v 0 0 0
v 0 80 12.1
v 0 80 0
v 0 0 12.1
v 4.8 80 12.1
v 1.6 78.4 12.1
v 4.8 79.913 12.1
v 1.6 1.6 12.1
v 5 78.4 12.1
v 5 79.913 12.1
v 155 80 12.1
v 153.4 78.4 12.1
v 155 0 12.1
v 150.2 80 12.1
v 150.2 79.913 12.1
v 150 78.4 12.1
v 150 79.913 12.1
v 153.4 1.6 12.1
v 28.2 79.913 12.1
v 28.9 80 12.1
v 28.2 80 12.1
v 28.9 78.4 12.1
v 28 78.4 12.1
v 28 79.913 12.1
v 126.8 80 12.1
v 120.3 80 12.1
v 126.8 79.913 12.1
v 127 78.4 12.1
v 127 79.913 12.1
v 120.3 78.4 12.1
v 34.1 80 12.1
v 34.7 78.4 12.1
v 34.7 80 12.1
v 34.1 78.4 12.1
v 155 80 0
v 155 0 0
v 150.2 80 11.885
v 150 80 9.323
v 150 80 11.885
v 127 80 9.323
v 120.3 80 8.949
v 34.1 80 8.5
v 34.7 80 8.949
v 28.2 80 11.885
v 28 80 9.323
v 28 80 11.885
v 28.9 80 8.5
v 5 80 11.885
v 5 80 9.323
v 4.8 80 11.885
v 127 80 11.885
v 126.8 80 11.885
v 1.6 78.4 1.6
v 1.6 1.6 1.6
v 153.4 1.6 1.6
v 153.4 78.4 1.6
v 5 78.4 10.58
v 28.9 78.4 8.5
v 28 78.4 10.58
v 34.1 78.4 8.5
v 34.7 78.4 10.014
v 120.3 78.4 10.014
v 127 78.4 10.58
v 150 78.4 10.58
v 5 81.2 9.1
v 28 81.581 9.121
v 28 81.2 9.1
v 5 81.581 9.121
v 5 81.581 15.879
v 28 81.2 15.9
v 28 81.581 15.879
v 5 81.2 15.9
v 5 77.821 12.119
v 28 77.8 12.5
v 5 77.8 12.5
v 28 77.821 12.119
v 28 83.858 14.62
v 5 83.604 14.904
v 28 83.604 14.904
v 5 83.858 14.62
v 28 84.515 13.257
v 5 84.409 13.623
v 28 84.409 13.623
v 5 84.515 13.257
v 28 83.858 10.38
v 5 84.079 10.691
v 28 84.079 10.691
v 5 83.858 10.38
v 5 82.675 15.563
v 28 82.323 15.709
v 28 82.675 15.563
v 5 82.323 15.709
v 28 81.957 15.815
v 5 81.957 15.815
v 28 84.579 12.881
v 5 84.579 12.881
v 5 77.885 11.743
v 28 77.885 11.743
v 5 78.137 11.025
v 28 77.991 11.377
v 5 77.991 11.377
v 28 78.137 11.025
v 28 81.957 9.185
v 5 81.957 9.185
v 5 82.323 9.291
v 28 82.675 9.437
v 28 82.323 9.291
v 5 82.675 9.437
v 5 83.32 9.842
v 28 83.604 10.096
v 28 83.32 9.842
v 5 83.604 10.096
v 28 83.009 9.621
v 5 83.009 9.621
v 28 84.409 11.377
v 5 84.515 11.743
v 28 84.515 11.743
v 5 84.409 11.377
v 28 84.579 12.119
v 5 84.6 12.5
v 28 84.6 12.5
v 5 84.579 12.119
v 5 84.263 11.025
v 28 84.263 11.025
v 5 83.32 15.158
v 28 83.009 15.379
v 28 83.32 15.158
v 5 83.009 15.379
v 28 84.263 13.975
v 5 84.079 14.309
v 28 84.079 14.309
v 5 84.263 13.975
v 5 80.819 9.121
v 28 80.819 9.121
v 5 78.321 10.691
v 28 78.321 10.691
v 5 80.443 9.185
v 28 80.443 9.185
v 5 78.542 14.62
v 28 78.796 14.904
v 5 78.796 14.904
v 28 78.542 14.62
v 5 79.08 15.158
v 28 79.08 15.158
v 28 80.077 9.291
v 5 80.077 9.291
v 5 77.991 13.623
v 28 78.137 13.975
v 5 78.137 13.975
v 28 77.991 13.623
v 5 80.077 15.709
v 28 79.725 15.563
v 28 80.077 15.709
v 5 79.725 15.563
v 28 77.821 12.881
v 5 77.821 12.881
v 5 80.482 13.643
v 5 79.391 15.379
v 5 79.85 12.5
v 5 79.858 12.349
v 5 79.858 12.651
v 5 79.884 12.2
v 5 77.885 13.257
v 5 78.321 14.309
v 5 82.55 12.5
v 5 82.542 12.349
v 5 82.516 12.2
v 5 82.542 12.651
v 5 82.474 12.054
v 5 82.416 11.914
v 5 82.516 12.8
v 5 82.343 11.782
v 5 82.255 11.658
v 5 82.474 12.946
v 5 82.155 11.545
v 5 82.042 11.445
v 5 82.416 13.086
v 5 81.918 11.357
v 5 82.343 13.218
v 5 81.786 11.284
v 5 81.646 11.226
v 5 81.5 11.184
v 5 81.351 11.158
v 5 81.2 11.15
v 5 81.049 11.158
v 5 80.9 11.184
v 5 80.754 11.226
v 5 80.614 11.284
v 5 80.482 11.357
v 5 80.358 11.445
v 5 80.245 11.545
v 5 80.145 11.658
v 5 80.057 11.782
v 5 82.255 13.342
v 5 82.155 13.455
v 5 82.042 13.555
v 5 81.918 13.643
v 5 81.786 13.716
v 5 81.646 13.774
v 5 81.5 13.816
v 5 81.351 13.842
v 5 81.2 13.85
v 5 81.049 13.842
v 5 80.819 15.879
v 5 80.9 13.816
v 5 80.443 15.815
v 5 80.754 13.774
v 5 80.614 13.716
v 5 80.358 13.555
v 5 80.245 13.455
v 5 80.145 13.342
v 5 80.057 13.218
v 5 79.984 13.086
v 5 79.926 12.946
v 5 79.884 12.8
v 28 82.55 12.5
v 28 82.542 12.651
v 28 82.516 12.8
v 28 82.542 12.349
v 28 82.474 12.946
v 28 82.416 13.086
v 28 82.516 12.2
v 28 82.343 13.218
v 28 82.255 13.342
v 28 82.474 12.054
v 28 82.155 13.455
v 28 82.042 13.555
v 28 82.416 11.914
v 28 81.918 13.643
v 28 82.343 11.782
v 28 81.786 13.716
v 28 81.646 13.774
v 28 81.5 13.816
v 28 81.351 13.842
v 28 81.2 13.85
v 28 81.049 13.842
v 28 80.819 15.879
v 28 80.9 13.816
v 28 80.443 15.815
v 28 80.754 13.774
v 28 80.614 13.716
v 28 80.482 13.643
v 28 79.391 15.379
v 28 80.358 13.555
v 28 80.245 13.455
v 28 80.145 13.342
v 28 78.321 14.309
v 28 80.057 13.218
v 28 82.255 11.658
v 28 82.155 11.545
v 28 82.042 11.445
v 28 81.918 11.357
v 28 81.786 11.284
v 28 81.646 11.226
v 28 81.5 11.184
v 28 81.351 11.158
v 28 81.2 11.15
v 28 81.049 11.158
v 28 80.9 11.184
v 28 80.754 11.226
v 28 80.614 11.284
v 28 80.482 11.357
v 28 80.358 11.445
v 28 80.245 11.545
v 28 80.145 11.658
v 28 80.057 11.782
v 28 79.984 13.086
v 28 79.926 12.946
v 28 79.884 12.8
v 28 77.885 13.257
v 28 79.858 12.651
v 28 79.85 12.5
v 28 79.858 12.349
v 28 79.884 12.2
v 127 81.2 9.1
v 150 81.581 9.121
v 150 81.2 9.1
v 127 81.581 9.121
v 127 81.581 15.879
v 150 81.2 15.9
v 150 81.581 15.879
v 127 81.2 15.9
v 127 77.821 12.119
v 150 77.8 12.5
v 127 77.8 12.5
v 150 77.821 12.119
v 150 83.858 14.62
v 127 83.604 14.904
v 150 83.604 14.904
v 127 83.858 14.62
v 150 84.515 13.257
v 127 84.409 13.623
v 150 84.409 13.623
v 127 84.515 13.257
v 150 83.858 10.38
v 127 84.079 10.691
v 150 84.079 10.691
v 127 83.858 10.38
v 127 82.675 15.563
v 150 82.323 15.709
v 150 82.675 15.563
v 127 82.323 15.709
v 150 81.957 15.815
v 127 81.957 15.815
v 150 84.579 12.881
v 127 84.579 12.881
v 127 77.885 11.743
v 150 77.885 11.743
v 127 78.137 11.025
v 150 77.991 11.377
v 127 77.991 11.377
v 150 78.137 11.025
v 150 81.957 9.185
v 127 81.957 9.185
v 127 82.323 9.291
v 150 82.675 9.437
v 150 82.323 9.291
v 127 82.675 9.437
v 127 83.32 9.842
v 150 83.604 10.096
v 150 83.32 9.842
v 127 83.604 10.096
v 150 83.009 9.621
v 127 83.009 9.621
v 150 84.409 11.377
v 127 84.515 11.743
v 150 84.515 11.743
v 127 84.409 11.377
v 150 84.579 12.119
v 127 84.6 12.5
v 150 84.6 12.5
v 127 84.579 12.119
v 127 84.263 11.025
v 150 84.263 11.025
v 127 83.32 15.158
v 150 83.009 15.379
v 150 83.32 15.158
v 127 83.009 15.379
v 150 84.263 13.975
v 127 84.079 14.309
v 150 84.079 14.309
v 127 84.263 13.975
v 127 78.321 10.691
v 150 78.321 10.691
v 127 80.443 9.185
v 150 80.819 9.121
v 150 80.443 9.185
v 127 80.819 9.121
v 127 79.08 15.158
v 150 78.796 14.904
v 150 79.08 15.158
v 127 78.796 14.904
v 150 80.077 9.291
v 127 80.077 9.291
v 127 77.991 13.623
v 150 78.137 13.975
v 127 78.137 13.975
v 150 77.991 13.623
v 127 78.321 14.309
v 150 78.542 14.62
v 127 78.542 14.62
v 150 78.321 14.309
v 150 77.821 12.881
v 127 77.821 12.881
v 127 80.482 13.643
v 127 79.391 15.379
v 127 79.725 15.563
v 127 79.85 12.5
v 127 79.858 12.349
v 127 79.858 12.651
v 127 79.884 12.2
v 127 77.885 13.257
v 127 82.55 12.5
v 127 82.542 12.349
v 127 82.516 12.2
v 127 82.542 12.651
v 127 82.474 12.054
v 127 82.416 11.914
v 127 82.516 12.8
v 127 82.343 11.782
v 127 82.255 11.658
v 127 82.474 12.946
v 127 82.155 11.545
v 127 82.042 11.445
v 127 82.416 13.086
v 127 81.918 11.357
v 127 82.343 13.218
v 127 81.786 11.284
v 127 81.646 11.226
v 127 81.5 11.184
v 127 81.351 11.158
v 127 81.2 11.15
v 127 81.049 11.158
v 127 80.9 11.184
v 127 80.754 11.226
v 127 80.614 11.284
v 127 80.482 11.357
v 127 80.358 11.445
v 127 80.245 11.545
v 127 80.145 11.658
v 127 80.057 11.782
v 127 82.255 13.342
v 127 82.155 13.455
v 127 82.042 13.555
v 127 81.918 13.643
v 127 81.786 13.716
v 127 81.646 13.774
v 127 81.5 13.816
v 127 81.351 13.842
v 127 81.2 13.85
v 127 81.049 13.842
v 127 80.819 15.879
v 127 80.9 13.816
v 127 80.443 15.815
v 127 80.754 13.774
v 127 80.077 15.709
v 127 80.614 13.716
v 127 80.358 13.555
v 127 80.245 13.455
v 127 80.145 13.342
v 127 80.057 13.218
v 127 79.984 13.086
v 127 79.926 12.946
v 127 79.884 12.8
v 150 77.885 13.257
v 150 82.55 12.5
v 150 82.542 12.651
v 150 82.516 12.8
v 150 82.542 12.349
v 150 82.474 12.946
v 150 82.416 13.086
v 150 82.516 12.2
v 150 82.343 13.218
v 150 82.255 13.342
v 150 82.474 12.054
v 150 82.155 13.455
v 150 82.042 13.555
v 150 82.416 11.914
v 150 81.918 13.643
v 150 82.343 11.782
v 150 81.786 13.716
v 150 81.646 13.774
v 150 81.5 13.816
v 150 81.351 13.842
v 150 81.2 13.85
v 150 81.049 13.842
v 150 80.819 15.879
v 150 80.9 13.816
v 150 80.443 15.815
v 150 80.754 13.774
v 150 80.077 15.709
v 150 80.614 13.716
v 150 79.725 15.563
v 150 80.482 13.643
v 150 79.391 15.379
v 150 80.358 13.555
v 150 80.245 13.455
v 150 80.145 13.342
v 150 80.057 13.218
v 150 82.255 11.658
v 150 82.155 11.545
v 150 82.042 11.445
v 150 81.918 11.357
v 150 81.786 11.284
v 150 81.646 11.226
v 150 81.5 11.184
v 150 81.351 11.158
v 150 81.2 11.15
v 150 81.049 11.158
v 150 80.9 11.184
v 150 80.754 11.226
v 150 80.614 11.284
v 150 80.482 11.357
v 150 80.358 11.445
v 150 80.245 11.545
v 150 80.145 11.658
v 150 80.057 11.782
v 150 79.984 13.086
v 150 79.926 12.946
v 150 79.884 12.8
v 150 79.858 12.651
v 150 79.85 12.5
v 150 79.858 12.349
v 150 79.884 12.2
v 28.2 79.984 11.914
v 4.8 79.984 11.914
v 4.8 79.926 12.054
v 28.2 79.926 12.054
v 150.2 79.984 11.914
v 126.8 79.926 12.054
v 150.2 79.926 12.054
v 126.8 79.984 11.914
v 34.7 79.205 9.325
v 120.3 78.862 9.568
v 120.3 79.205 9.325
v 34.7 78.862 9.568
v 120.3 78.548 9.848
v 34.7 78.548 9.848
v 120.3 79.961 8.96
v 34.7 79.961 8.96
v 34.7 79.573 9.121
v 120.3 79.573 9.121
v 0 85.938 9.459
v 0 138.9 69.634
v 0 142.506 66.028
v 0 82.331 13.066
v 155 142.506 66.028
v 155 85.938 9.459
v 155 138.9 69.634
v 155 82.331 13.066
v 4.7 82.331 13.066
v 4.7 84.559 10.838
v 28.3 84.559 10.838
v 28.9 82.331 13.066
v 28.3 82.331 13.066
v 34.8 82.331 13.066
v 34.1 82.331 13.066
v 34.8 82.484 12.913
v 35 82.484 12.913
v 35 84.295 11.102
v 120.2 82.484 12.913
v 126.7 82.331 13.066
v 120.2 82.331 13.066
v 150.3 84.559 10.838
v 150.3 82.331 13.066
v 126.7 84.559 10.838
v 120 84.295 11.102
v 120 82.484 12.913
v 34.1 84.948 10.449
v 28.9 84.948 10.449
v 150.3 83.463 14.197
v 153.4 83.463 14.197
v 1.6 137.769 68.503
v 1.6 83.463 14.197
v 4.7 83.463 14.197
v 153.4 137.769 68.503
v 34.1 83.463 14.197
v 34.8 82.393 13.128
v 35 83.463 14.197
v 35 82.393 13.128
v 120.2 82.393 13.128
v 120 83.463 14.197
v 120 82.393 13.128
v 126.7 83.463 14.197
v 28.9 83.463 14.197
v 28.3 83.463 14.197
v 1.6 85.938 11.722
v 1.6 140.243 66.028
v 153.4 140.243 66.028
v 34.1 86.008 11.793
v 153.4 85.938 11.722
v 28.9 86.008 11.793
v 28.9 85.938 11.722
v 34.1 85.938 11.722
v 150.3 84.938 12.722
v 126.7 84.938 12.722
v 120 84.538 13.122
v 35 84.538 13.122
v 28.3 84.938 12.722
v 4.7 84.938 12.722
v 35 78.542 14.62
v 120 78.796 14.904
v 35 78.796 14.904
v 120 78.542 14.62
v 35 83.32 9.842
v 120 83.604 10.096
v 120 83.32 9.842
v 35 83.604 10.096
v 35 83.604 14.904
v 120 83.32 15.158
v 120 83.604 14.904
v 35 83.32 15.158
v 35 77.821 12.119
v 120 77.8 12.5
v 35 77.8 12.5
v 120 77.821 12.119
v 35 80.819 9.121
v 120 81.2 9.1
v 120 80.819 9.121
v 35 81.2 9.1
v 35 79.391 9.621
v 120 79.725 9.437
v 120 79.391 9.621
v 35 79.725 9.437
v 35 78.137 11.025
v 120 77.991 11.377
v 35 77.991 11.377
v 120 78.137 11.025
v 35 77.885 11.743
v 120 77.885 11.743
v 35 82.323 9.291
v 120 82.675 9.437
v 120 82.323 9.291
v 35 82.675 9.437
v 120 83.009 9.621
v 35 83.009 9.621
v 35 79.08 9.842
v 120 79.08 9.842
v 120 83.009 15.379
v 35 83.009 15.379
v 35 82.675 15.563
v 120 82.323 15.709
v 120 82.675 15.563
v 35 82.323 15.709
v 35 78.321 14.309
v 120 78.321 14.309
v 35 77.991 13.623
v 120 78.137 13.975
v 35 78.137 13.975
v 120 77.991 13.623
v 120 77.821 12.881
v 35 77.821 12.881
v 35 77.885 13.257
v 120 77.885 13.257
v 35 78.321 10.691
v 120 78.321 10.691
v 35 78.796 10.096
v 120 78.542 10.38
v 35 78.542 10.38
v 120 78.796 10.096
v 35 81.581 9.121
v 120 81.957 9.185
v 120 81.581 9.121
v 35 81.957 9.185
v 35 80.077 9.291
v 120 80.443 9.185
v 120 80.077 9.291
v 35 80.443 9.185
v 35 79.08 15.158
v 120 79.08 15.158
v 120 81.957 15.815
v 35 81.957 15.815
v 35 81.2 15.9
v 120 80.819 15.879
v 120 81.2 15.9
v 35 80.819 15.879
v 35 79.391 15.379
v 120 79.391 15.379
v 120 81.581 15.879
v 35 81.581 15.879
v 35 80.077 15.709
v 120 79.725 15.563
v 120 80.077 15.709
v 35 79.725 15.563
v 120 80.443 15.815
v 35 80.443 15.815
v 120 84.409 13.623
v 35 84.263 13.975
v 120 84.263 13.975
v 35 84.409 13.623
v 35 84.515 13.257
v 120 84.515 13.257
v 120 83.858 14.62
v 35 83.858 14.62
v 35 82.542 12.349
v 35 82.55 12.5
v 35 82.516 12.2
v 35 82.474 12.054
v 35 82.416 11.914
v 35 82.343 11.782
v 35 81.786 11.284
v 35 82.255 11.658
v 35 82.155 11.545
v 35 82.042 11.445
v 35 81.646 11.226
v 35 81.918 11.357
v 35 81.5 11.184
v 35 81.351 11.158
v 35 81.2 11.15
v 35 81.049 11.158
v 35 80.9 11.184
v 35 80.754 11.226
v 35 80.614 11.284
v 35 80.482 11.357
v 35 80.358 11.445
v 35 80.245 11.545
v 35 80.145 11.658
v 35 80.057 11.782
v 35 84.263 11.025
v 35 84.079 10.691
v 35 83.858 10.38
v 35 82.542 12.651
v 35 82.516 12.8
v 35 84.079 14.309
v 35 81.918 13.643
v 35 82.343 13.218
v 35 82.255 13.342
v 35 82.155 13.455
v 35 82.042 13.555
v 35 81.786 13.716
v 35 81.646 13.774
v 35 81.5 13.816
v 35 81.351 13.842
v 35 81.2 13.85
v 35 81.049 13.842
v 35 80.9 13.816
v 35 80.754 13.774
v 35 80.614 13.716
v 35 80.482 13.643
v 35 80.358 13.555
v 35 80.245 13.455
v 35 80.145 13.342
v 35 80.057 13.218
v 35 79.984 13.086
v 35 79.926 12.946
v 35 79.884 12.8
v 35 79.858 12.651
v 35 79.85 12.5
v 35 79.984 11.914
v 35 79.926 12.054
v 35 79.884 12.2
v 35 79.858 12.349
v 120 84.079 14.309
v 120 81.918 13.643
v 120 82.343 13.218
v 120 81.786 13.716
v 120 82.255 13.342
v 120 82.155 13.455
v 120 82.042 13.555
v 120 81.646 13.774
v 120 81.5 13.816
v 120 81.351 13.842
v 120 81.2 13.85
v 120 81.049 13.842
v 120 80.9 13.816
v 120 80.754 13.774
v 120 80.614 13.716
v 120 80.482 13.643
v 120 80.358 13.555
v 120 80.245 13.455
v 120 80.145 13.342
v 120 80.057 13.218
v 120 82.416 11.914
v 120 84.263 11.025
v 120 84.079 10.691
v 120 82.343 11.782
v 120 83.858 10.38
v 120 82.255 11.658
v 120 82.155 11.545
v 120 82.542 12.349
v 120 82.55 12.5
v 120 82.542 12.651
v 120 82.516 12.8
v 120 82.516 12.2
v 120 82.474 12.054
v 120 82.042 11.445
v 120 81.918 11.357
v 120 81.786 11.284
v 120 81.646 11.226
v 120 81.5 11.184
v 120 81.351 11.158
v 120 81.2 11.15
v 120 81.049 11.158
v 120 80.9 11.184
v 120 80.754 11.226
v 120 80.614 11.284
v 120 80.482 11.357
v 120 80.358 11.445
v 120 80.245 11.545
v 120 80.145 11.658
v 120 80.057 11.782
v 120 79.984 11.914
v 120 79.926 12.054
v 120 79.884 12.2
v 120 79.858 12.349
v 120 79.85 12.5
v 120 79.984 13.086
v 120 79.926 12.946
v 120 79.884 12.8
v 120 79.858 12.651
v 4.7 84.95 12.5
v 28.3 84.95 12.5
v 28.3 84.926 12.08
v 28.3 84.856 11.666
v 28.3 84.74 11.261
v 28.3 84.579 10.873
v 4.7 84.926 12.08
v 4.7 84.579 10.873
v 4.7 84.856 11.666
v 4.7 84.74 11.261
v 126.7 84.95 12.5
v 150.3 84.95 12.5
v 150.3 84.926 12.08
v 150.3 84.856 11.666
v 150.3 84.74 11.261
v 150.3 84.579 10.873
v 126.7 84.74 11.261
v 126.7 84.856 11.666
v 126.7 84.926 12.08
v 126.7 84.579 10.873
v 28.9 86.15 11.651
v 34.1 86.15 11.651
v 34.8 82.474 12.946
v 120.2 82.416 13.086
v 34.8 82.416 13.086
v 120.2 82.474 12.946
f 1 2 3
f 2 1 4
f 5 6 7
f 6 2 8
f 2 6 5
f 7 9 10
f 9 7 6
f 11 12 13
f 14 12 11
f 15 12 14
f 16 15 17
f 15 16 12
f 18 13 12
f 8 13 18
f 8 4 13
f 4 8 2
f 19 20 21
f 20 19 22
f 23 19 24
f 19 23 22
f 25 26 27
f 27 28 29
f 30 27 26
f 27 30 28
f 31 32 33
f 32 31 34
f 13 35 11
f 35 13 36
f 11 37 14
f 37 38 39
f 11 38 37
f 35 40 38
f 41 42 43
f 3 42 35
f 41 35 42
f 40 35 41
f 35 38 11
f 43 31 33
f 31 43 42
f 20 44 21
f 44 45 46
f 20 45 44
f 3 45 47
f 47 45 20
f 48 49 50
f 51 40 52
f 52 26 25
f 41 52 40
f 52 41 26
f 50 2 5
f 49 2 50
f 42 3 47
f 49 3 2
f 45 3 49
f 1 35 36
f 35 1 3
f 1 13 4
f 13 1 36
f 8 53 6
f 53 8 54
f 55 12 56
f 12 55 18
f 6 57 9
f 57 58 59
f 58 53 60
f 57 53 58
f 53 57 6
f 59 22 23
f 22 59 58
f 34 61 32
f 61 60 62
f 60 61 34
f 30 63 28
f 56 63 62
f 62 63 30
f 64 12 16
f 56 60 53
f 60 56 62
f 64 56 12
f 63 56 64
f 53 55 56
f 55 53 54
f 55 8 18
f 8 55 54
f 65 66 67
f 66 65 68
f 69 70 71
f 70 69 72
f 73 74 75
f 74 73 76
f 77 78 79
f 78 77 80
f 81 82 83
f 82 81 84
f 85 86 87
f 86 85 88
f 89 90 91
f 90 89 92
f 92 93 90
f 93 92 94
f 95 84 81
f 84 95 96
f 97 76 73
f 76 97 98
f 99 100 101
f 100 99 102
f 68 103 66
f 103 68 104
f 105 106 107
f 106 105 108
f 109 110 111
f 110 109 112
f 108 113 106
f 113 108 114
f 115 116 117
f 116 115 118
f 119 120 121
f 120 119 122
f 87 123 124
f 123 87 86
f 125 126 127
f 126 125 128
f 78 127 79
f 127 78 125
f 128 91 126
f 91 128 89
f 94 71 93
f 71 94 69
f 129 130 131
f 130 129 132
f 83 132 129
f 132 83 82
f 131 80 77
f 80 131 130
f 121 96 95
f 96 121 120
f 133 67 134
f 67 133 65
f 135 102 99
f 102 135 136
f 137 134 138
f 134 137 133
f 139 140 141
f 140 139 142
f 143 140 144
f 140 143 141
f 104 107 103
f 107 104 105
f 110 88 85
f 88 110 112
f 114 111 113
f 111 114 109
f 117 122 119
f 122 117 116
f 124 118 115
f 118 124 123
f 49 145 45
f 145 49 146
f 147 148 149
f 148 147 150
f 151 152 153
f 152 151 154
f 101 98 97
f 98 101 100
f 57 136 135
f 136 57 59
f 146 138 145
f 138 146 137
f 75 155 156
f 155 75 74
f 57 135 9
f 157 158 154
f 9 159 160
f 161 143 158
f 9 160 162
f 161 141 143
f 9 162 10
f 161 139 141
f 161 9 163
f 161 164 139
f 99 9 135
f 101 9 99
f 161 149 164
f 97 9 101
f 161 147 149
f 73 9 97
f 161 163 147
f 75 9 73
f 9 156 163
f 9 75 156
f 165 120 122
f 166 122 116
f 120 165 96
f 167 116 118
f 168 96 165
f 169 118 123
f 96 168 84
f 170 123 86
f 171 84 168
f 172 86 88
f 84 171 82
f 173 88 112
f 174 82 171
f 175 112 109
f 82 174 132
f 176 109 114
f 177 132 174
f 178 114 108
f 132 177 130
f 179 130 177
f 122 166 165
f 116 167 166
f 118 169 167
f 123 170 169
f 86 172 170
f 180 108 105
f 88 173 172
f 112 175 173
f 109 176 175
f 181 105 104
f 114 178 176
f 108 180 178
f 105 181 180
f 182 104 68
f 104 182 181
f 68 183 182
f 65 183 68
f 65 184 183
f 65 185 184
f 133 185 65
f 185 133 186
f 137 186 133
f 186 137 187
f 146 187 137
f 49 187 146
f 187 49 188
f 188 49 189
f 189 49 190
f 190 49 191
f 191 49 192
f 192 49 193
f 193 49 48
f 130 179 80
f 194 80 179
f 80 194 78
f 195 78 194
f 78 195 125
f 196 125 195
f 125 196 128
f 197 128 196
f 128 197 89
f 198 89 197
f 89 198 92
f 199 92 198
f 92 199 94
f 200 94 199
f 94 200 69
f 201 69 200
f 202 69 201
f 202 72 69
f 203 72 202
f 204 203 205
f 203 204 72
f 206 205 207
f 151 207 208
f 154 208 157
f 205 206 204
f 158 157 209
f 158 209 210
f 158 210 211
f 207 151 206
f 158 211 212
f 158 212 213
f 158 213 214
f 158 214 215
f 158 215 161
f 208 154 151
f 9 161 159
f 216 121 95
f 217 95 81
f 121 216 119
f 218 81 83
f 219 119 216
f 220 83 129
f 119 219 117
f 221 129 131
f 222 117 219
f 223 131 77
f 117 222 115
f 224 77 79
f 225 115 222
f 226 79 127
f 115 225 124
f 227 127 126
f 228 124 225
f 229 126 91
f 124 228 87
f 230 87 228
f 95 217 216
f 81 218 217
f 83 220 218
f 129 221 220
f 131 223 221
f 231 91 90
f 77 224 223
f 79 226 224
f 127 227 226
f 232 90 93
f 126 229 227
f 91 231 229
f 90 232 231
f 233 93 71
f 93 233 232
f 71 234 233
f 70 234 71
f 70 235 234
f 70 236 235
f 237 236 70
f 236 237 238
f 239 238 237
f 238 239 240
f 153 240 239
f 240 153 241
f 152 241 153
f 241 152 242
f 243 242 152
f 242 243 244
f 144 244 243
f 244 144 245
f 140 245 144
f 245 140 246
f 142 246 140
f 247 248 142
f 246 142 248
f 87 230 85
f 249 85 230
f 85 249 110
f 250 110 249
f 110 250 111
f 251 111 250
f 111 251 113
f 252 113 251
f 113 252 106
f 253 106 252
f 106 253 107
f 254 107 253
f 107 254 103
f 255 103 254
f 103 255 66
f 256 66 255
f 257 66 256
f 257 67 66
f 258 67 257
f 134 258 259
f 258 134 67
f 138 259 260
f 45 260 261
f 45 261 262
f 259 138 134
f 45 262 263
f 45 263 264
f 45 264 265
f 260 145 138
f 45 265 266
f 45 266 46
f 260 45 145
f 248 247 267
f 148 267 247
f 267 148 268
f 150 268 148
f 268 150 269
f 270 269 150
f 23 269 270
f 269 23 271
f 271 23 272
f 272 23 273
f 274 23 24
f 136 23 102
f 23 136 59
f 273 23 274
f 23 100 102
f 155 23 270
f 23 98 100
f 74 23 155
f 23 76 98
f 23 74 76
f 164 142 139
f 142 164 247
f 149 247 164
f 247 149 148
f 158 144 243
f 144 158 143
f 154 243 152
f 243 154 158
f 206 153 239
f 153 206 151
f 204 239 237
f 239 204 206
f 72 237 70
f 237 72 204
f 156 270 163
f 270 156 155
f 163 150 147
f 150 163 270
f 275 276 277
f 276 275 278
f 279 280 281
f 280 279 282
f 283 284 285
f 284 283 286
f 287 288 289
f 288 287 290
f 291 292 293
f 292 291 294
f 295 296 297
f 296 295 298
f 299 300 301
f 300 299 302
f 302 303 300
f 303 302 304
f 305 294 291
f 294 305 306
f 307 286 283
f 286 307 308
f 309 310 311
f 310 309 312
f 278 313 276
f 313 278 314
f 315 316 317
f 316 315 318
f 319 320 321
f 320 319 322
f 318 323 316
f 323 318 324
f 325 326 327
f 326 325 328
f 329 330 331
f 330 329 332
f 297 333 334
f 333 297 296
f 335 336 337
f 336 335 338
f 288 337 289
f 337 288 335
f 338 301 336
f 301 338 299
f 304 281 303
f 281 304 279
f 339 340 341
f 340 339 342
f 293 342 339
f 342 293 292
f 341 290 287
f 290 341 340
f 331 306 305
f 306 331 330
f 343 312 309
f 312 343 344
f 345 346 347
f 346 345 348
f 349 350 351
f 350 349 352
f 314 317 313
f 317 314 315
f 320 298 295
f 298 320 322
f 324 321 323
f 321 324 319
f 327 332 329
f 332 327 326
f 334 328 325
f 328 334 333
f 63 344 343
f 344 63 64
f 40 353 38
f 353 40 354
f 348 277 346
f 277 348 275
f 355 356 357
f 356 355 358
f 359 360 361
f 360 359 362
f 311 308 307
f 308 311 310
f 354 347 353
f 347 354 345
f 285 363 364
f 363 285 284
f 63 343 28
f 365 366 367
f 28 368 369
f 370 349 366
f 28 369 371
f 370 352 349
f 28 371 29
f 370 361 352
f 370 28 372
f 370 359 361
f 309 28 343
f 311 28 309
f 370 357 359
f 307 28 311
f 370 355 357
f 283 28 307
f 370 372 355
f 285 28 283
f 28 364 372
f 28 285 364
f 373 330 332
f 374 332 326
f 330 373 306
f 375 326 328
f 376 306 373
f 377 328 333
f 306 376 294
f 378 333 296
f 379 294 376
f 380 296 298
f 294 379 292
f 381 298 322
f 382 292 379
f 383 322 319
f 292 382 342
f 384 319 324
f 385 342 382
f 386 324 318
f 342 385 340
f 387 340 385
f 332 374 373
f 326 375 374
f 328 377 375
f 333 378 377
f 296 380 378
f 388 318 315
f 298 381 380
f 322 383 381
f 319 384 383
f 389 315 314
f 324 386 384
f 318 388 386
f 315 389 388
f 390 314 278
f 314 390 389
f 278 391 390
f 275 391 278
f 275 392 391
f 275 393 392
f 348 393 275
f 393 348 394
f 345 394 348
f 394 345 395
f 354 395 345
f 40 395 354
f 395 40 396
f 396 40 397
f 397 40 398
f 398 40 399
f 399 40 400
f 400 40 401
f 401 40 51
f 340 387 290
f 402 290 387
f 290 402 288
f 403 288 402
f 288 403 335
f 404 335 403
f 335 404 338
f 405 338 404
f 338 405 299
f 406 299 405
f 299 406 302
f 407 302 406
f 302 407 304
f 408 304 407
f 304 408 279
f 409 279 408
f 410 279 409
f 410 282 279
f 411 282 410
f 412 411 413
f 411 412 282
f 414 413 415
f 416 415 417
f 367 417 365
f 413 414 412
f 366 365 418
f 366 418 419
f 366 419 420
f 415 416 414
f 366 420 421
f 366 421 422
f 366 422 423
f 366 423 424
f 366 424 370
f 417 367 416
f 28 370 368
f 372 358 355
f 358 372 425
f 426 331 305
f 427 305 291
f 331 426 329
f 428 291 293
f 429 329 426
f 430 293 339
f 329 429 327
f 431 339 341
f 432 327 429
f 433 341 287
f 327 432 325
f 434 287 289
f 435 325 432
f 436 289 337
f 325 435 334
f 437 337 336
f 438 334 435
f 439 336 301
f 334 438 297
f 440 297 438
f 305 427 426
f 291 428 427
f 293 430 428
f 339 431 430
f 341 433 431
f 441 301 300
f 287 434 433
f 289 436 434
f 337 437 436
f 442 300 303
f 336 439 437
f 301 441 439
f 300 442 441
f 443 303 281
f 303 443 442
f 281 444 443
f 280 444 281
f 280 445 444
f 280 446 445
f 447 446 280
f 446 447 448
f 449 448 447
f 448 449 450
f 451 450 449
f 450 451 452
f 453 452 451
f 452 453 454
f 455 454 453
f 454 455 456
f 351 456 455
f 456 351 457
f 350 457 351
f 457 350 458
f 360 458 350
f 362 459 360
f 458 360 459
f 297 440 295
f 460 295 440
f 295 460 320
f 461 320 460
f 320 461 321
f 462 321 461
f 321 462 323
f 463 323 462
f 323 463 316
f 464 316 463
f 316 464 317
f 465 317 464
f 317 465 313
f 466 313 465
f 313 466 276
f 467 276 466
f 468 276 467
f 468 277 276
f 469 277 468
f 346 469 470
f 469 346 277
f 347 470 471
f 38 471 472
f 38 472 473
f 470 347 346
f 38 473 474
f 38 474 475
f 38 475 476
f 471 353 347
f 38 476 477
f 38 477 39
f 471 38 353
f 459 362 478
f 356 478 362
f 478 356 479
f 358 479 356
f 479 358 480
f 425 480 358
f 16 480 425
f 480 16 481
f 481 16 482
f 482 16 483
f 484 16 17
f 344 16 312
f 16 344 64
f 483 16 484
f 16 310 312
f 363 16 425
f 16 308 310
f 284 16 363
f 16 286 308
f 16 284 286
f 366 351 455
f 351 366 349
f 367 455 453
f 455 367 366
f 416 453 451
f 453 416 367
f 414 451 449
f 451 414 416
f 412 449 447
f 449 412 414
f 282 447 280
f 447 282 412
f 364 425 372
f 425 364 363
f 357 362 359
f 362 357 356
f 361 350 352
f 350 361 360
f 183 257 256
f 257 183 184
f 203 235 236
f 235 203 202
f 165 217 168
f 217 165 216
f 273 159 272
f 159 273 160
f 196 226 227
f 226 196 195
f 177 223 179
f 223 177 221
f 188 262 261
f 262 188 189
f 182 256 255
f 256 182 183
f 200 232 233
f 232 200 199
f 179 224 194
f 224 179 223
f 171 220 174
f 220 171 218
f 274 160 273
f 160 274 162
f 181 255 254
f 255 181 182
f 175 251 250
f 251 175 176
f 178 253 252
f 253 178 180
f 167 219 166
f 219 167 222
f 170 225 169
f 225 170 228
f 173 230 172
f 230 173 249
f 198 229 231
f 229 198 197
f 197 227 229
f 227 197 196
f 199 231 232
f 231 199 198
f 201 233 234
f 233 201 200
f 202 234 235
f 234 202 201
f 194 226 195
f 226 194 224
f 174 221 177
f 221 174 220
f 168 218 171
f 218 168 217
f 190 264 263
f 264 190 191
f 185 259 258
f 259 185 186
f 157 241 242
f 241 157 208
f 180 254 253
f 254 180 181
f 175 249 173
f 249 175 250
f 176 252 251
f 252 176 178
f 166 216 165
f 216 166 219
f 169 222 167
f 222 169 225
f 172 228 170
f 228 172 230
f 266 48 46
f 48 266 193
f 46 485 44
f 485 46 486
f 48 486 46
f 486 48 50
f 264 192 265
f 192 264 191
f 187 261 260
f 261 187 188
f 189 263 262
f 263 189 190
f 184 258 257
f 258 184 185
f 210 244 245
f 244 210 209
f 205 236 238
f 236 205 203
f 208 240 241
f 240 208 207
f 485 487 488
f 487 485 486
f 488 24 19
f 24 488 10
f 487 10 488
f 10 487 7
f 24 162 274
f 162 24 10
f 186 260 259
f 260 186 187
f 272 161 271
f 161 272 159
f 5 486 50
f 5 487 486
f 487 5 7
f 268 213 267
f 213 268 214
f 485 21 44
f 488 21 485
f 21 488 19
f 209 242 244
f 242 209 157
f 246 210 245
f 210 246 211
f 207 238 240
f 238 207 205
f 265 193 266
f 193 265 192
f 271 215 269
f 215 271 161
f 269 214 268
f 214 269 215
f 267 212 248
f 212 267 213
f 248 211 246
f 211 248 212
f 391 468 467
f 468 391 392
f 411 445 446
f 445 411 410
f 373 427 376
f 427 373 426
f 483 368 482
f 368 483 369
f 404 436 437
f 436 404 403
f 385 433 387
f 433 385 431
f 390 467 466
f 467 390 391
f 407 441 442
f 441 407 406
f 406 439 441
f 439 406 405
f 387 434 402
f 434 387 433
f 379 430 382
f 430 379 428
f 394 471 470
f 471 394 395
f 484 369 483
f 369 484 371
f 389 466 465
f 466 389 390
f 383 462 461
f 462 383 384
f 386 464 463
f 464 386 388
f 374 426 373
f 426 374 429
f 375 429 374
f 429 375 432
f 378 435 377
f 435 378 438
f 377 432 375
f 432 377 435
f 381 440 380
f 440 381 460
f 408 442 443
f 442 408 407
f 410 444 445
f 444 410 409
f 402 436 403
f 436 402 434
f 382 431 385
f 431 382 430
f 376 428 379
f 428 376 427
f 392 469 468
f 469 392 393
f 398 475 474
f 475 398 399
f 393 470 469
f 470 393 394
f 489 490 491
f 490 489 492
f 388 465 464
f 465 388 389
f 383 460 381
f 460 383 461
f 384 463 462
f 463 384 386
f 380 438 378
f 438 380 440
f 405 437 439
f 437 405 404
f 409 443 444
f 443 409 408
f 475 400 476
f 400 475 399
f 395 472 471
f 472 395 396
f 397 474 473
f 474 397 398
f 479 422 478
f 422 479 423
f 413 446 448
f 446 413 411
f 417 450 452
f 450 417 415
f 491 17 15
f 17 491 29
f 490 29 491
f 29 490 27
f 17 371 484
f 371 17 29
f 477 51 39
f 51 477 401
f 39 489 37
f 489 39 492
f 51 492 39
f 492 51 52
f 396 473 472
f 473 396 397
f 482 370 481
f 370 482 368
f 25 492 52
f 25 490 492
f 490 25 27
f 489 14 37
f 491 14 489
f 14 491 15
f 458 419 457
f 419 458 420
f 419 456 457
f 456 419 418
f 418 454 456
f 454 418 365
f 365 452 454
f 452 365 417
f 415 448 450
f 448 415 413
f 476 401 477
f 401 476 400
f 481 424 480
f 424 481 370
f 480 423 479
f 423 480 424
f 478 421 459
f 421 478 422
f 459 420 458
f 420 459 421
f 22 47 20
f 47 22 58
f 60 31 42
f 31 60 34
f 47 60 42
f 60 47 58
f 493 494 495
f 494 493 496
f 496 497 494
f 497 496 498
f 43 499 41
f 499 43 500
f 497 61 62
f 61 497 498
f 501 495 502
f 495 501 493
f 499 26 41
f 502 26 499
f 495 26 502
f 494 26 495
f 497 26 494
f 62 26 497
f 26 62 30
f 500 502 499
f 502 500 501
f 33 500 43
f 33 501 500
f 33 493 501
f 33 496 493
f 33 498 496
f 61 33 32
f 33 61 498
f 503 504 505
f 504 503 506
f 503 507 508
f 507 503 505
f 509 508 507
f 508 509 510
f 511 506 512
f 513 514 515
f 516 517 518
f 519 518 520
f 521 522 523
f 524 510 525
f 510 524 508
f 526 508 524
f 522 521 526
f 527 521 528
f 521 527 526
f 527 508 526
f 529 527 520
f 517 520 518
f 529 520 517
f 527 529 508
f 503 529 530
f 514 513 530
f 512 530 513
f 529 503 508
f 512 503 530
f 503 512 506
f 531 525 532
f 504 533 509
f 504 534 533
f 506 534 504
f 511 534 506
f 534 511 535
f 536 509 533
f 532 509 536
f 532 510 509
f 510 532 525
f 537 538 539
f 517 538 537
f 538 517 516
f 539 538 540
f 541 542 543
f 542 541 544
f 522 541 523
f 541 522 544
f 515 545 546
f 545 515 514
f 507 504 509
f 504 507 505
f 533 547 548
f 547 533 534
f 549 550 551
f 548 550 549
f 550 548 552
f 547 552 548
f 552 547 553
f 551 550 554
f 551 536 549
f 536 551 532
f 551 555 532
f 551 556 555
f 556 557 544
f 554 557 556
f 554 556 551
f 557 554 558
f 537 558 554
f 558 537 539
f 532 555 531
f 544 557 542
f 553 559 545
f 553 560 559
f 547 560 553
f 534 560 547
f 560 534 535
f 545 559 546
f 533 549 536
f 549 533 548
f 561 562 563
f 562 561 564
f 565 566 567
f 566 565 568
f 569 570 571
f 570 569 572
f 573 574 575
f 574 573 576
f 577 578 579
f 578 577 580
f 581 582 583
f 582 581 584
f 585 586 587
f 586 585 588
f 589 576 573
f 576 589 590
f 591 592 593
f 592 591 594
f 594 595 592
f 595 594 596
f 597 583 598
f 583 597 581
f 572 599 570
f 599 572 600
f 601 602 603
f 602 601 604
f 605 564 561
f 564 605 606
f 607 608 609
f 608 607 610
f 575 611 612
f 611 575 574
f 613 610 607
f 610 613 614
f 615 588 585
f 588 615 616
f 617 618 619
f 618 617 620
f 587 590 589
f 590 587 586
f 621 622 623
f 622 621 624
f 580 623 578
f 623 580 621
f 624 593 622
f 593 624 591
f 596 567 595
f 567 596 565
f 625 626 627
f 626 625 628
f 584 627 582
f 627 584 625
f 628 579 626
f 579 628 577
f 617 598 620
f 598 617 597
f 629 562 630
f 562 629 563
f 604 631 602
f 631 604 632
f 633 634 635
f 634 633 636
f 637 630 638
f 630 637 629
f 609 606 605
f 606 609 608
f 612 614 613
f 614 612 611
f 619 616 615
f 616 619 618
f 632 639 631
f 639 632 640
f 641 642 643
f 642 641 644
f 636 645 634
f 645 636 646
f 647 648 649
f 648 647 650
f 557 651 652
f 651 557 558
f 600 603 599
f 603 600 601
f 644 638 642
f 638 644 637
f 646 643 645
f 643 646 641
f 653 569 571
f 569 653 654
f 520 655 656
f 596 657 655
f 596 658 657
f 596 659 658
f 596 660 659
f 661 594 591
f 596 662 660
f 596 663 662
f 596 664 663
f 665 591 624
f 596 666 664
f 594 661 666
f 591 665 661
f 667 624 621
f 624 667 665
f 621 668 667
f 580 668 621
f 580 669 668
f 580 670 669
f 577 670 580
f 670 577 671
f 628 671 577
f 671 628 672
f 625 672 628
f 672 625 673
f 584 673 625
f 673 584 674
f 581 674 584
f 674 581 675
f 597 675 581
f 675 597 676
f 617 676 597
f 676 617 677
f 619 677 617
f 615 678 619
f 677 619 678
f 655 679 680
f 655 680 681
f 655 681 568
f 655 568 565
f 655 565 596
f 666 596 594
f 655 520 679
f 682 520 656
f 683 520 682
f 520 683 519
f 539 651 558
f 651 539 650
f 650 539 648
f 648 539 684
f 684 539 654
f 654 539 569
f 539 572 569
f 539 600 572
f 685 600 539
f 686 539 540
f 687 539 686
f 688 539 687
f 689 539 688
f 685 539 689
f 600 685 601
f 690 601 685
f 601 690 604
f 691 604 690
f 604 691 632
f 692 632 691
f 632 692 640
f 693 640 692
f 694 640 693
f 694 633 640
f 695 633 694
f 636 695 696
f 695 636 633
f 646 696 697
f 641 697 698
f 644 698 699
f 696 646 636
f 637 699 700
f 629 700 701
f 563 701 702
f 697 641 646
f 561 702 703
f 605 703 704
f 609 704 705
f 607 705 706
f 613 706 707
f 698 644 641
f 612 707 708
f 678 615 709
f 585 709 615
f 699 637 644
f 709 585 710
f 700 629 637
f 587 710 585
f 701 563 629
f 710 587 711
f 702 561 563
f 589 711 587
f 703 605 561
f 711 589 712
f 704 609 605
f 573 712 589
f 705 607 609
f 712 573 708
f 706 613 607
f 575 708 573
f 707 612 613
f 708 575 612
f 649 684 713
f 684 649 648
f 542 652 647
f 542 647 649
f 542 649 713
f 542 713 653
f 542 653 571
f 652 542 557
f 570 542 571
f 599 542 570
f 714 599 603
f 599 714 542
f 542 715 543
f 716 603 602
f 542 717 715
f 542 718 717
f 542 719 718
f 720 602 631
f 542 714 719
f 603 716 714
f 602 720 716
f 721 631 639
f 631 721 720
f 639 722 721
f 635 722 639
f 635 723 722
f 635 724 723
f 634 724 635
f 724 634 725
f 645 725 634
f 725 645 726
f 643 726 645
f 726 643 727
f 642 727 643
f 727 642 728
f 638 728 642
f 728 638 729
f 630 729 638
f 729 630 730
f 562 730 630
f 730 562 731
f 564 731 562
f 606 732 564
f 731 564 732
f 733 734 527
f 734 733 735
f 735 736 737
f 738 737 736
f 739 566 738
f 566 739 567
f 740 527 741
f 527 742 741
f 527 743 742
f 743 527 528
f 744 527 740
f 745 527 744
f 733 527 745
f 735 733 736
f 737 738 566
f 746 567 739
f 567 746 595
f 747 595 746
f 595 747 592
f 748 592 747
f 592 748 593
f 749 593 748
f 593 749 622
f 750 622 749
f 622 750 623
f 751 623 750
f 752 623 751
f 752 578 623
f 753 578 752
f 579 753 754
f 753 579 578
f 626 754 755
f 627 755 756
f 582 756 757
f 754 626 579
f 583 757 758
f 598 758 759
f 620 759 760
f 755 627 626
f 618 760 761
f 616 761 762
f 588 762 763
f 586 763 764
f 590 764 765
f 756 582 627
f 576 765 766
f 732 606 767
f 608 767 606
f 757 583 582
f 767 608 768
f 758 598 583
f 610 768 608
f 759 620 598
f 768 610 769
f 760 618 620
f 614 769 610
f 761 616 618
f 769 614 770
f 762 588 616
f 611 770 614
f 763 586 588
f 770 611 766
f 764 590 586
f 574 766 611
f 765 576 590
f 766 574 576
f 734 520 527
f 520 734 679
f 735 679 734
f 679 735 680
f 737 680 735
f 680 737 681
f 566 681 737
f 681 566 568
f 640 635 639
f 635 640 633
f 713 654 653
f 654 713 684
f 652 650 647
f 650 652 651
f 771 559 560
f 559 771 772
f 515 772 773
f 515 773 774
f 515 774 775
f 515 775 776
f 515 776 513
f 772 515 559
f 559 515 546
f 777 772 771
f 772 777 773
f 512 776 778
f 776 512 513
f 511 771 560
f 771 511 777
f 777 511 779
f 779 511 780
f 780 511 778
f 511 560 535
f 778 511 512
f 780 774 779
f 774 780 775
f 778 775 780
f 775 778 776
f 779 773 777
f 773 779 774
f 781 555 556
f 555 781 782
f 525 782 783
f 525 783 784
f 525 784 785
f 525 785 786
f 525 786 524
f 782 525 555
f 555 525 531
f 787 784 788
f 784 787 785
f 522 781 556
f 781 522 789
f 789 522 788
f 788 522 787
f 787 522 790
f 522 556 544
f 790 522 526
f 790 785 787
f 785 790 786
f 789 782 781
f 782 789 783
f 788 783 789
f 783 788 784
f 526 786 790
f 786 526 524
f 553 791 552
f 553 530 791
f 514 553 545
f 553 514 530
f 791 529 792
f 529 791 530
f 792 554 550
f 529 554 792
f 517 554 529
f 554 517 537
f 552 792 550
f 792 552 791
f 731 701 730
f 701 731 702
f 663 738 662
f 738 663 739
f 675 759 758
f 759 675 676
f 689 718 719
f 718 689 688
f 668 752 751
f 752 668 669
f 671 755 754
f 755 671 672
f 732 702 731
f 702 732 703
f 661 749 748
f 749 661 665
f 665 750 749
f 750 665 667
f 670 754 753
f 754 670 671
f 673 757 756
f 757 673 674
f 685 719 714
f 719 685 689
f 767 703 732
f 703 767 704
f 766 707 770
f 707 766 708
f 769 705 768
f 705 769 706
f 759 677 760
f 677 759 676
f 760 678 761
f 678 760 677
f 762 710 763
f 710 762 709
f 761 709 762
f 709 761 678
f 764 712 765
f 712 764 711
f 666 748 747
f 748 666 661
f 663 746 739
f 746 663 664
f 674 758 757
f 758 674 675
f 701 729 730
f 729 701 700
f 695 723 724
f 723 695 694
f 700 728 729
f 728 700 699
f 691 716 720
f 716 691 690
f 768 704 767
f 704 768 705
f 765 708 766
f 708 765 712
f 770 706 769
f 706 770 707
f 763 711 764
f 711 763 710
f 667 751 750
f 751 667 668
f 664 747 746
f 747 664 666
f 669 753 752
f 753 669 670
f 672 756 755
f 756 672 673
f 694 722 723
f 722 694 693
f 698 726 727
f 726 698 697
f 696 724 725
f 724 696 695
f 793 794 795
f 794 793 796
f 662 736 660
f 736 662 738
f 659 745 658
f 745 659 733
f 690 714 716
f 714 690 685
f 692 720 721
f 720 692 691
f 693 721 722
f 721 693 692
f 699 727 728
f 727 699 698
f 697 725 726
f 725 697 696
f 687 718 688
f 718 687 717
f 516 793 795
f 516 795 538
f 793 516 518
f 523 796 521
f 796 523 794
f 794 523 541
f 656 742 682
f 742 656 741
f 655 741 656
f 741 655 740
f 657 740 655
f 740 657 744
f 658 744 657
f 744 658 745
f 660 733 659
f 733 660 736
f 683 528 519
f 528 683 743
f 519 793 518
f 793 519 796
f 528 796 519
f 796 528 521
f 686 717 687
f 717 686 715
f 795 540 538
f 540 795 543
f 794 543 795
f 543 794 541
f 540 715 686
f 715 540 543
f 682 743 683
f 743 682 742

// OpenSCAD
// file: lid_shell.scad
// Generated by Mecha-Splicer: clamshell_terminal v1
// Dimension-based CAD ONLY: unknown PCB screw positions, USB access and real fit.
// lid / display tray (down-facing open pocket at closed angle), all dimensions in mm
$fn=56;
W=155.0; D=80.0; wall=1.6; floor=1.6;
HBASE=12.1; HLID=5.1; gap=0.8;
hy=81.2; hz=12.5;
kr=3.4; bore=2.7;

module lid_shell() {
  difference() {
    union() {
      difference() {
        translate([0,0,12.9]) cube([W,D,HLID]);
        translate([wall,wall,12.8]) cube([W-2*wall,D-2*wall,HLID-floor+0.1]);
      }
      translate([35.0,hy,hz]) rotate([0,90,0]) cylinder(h=85.0,r=kr);
    }
    // Lid-side four-wire cable entry (opposed to left-side base slot)
    translate([28.9,78.30000000000001,12.8]) cube([5.2,1.8,3.8000000000000003]);
    // Relief for two base knuckles entering lid rear wall at all open angles
    for (x=[4.7,126.7]) translate([x,hy,hz]) rotate([0,90,0]) cylinder(h=23.6,r=3.75);
    translate([34.8,hy,hz]) rotate([0,90,0]) cylinder(h=85.4,d=bore);
  }
}
lid_shell();
// file: base_shell.scad
// Generated by Mecha-Splicer: clamshell_terminal v1
// Dimension-based CAD ONLY: unknown PCB screw positions, USB access and real fit.
// base / keyboard tray, all dimensions in mm
$fn=56;
W=155.0; D=80.0; wall=1.6; floor=1.6;
HBASE=12.1; HLID=5.1; gap=0.8;
hy=81.2; hz=12.5;
kr=3.4; bore=2.7;

module base_shell() {
  difference() {
    union() {
      difference() {
        cube([W,D,HBASE]);
        translate([wall,wall,floor]) cube([W-2*wall,D-2*wall,HBASE+1]);
      }
      for (x=[5.0,127.0]) translate([x,hy,hz]) rotate([0,90,0]) cylinder(h=23.0,r=kr);
    }
    // Strain-relief entry only: actual cable bend life remains untested
    translate([28.9,78.30000000000001,8.5]) cube([5.2,1.8,3.7]);
    // Clearance pocket for opposite lid knuckle through base rear wall
    translate([34.7,hy,hz]) rotate([0,90,0]) cylinder(h=85.6,r=3.75);
    // Through-bore including relief outside the short segments
    for (x=[4.8,126.8]) translate([x,hy,hz]) rotate([0,90,0]) cylinder(h=23.4,d=bore);
  }
}
base_shell();
// main file
// Mecha-Splicer assembly preview only. Angle 0=closed; -135=open.
use <base_shell.scad>
use <lid_shell.scad>
angle_deg = -135.0;
hy=81.2; hz=12.5;
color([0.17,0.23,0.31]) base_shell();
color([0.42,0.53,0.61])
translate([0,hy,hz]) rotate([angle_deg,0,0])
  translate([0,-hy,-hz]) lid_shell();
